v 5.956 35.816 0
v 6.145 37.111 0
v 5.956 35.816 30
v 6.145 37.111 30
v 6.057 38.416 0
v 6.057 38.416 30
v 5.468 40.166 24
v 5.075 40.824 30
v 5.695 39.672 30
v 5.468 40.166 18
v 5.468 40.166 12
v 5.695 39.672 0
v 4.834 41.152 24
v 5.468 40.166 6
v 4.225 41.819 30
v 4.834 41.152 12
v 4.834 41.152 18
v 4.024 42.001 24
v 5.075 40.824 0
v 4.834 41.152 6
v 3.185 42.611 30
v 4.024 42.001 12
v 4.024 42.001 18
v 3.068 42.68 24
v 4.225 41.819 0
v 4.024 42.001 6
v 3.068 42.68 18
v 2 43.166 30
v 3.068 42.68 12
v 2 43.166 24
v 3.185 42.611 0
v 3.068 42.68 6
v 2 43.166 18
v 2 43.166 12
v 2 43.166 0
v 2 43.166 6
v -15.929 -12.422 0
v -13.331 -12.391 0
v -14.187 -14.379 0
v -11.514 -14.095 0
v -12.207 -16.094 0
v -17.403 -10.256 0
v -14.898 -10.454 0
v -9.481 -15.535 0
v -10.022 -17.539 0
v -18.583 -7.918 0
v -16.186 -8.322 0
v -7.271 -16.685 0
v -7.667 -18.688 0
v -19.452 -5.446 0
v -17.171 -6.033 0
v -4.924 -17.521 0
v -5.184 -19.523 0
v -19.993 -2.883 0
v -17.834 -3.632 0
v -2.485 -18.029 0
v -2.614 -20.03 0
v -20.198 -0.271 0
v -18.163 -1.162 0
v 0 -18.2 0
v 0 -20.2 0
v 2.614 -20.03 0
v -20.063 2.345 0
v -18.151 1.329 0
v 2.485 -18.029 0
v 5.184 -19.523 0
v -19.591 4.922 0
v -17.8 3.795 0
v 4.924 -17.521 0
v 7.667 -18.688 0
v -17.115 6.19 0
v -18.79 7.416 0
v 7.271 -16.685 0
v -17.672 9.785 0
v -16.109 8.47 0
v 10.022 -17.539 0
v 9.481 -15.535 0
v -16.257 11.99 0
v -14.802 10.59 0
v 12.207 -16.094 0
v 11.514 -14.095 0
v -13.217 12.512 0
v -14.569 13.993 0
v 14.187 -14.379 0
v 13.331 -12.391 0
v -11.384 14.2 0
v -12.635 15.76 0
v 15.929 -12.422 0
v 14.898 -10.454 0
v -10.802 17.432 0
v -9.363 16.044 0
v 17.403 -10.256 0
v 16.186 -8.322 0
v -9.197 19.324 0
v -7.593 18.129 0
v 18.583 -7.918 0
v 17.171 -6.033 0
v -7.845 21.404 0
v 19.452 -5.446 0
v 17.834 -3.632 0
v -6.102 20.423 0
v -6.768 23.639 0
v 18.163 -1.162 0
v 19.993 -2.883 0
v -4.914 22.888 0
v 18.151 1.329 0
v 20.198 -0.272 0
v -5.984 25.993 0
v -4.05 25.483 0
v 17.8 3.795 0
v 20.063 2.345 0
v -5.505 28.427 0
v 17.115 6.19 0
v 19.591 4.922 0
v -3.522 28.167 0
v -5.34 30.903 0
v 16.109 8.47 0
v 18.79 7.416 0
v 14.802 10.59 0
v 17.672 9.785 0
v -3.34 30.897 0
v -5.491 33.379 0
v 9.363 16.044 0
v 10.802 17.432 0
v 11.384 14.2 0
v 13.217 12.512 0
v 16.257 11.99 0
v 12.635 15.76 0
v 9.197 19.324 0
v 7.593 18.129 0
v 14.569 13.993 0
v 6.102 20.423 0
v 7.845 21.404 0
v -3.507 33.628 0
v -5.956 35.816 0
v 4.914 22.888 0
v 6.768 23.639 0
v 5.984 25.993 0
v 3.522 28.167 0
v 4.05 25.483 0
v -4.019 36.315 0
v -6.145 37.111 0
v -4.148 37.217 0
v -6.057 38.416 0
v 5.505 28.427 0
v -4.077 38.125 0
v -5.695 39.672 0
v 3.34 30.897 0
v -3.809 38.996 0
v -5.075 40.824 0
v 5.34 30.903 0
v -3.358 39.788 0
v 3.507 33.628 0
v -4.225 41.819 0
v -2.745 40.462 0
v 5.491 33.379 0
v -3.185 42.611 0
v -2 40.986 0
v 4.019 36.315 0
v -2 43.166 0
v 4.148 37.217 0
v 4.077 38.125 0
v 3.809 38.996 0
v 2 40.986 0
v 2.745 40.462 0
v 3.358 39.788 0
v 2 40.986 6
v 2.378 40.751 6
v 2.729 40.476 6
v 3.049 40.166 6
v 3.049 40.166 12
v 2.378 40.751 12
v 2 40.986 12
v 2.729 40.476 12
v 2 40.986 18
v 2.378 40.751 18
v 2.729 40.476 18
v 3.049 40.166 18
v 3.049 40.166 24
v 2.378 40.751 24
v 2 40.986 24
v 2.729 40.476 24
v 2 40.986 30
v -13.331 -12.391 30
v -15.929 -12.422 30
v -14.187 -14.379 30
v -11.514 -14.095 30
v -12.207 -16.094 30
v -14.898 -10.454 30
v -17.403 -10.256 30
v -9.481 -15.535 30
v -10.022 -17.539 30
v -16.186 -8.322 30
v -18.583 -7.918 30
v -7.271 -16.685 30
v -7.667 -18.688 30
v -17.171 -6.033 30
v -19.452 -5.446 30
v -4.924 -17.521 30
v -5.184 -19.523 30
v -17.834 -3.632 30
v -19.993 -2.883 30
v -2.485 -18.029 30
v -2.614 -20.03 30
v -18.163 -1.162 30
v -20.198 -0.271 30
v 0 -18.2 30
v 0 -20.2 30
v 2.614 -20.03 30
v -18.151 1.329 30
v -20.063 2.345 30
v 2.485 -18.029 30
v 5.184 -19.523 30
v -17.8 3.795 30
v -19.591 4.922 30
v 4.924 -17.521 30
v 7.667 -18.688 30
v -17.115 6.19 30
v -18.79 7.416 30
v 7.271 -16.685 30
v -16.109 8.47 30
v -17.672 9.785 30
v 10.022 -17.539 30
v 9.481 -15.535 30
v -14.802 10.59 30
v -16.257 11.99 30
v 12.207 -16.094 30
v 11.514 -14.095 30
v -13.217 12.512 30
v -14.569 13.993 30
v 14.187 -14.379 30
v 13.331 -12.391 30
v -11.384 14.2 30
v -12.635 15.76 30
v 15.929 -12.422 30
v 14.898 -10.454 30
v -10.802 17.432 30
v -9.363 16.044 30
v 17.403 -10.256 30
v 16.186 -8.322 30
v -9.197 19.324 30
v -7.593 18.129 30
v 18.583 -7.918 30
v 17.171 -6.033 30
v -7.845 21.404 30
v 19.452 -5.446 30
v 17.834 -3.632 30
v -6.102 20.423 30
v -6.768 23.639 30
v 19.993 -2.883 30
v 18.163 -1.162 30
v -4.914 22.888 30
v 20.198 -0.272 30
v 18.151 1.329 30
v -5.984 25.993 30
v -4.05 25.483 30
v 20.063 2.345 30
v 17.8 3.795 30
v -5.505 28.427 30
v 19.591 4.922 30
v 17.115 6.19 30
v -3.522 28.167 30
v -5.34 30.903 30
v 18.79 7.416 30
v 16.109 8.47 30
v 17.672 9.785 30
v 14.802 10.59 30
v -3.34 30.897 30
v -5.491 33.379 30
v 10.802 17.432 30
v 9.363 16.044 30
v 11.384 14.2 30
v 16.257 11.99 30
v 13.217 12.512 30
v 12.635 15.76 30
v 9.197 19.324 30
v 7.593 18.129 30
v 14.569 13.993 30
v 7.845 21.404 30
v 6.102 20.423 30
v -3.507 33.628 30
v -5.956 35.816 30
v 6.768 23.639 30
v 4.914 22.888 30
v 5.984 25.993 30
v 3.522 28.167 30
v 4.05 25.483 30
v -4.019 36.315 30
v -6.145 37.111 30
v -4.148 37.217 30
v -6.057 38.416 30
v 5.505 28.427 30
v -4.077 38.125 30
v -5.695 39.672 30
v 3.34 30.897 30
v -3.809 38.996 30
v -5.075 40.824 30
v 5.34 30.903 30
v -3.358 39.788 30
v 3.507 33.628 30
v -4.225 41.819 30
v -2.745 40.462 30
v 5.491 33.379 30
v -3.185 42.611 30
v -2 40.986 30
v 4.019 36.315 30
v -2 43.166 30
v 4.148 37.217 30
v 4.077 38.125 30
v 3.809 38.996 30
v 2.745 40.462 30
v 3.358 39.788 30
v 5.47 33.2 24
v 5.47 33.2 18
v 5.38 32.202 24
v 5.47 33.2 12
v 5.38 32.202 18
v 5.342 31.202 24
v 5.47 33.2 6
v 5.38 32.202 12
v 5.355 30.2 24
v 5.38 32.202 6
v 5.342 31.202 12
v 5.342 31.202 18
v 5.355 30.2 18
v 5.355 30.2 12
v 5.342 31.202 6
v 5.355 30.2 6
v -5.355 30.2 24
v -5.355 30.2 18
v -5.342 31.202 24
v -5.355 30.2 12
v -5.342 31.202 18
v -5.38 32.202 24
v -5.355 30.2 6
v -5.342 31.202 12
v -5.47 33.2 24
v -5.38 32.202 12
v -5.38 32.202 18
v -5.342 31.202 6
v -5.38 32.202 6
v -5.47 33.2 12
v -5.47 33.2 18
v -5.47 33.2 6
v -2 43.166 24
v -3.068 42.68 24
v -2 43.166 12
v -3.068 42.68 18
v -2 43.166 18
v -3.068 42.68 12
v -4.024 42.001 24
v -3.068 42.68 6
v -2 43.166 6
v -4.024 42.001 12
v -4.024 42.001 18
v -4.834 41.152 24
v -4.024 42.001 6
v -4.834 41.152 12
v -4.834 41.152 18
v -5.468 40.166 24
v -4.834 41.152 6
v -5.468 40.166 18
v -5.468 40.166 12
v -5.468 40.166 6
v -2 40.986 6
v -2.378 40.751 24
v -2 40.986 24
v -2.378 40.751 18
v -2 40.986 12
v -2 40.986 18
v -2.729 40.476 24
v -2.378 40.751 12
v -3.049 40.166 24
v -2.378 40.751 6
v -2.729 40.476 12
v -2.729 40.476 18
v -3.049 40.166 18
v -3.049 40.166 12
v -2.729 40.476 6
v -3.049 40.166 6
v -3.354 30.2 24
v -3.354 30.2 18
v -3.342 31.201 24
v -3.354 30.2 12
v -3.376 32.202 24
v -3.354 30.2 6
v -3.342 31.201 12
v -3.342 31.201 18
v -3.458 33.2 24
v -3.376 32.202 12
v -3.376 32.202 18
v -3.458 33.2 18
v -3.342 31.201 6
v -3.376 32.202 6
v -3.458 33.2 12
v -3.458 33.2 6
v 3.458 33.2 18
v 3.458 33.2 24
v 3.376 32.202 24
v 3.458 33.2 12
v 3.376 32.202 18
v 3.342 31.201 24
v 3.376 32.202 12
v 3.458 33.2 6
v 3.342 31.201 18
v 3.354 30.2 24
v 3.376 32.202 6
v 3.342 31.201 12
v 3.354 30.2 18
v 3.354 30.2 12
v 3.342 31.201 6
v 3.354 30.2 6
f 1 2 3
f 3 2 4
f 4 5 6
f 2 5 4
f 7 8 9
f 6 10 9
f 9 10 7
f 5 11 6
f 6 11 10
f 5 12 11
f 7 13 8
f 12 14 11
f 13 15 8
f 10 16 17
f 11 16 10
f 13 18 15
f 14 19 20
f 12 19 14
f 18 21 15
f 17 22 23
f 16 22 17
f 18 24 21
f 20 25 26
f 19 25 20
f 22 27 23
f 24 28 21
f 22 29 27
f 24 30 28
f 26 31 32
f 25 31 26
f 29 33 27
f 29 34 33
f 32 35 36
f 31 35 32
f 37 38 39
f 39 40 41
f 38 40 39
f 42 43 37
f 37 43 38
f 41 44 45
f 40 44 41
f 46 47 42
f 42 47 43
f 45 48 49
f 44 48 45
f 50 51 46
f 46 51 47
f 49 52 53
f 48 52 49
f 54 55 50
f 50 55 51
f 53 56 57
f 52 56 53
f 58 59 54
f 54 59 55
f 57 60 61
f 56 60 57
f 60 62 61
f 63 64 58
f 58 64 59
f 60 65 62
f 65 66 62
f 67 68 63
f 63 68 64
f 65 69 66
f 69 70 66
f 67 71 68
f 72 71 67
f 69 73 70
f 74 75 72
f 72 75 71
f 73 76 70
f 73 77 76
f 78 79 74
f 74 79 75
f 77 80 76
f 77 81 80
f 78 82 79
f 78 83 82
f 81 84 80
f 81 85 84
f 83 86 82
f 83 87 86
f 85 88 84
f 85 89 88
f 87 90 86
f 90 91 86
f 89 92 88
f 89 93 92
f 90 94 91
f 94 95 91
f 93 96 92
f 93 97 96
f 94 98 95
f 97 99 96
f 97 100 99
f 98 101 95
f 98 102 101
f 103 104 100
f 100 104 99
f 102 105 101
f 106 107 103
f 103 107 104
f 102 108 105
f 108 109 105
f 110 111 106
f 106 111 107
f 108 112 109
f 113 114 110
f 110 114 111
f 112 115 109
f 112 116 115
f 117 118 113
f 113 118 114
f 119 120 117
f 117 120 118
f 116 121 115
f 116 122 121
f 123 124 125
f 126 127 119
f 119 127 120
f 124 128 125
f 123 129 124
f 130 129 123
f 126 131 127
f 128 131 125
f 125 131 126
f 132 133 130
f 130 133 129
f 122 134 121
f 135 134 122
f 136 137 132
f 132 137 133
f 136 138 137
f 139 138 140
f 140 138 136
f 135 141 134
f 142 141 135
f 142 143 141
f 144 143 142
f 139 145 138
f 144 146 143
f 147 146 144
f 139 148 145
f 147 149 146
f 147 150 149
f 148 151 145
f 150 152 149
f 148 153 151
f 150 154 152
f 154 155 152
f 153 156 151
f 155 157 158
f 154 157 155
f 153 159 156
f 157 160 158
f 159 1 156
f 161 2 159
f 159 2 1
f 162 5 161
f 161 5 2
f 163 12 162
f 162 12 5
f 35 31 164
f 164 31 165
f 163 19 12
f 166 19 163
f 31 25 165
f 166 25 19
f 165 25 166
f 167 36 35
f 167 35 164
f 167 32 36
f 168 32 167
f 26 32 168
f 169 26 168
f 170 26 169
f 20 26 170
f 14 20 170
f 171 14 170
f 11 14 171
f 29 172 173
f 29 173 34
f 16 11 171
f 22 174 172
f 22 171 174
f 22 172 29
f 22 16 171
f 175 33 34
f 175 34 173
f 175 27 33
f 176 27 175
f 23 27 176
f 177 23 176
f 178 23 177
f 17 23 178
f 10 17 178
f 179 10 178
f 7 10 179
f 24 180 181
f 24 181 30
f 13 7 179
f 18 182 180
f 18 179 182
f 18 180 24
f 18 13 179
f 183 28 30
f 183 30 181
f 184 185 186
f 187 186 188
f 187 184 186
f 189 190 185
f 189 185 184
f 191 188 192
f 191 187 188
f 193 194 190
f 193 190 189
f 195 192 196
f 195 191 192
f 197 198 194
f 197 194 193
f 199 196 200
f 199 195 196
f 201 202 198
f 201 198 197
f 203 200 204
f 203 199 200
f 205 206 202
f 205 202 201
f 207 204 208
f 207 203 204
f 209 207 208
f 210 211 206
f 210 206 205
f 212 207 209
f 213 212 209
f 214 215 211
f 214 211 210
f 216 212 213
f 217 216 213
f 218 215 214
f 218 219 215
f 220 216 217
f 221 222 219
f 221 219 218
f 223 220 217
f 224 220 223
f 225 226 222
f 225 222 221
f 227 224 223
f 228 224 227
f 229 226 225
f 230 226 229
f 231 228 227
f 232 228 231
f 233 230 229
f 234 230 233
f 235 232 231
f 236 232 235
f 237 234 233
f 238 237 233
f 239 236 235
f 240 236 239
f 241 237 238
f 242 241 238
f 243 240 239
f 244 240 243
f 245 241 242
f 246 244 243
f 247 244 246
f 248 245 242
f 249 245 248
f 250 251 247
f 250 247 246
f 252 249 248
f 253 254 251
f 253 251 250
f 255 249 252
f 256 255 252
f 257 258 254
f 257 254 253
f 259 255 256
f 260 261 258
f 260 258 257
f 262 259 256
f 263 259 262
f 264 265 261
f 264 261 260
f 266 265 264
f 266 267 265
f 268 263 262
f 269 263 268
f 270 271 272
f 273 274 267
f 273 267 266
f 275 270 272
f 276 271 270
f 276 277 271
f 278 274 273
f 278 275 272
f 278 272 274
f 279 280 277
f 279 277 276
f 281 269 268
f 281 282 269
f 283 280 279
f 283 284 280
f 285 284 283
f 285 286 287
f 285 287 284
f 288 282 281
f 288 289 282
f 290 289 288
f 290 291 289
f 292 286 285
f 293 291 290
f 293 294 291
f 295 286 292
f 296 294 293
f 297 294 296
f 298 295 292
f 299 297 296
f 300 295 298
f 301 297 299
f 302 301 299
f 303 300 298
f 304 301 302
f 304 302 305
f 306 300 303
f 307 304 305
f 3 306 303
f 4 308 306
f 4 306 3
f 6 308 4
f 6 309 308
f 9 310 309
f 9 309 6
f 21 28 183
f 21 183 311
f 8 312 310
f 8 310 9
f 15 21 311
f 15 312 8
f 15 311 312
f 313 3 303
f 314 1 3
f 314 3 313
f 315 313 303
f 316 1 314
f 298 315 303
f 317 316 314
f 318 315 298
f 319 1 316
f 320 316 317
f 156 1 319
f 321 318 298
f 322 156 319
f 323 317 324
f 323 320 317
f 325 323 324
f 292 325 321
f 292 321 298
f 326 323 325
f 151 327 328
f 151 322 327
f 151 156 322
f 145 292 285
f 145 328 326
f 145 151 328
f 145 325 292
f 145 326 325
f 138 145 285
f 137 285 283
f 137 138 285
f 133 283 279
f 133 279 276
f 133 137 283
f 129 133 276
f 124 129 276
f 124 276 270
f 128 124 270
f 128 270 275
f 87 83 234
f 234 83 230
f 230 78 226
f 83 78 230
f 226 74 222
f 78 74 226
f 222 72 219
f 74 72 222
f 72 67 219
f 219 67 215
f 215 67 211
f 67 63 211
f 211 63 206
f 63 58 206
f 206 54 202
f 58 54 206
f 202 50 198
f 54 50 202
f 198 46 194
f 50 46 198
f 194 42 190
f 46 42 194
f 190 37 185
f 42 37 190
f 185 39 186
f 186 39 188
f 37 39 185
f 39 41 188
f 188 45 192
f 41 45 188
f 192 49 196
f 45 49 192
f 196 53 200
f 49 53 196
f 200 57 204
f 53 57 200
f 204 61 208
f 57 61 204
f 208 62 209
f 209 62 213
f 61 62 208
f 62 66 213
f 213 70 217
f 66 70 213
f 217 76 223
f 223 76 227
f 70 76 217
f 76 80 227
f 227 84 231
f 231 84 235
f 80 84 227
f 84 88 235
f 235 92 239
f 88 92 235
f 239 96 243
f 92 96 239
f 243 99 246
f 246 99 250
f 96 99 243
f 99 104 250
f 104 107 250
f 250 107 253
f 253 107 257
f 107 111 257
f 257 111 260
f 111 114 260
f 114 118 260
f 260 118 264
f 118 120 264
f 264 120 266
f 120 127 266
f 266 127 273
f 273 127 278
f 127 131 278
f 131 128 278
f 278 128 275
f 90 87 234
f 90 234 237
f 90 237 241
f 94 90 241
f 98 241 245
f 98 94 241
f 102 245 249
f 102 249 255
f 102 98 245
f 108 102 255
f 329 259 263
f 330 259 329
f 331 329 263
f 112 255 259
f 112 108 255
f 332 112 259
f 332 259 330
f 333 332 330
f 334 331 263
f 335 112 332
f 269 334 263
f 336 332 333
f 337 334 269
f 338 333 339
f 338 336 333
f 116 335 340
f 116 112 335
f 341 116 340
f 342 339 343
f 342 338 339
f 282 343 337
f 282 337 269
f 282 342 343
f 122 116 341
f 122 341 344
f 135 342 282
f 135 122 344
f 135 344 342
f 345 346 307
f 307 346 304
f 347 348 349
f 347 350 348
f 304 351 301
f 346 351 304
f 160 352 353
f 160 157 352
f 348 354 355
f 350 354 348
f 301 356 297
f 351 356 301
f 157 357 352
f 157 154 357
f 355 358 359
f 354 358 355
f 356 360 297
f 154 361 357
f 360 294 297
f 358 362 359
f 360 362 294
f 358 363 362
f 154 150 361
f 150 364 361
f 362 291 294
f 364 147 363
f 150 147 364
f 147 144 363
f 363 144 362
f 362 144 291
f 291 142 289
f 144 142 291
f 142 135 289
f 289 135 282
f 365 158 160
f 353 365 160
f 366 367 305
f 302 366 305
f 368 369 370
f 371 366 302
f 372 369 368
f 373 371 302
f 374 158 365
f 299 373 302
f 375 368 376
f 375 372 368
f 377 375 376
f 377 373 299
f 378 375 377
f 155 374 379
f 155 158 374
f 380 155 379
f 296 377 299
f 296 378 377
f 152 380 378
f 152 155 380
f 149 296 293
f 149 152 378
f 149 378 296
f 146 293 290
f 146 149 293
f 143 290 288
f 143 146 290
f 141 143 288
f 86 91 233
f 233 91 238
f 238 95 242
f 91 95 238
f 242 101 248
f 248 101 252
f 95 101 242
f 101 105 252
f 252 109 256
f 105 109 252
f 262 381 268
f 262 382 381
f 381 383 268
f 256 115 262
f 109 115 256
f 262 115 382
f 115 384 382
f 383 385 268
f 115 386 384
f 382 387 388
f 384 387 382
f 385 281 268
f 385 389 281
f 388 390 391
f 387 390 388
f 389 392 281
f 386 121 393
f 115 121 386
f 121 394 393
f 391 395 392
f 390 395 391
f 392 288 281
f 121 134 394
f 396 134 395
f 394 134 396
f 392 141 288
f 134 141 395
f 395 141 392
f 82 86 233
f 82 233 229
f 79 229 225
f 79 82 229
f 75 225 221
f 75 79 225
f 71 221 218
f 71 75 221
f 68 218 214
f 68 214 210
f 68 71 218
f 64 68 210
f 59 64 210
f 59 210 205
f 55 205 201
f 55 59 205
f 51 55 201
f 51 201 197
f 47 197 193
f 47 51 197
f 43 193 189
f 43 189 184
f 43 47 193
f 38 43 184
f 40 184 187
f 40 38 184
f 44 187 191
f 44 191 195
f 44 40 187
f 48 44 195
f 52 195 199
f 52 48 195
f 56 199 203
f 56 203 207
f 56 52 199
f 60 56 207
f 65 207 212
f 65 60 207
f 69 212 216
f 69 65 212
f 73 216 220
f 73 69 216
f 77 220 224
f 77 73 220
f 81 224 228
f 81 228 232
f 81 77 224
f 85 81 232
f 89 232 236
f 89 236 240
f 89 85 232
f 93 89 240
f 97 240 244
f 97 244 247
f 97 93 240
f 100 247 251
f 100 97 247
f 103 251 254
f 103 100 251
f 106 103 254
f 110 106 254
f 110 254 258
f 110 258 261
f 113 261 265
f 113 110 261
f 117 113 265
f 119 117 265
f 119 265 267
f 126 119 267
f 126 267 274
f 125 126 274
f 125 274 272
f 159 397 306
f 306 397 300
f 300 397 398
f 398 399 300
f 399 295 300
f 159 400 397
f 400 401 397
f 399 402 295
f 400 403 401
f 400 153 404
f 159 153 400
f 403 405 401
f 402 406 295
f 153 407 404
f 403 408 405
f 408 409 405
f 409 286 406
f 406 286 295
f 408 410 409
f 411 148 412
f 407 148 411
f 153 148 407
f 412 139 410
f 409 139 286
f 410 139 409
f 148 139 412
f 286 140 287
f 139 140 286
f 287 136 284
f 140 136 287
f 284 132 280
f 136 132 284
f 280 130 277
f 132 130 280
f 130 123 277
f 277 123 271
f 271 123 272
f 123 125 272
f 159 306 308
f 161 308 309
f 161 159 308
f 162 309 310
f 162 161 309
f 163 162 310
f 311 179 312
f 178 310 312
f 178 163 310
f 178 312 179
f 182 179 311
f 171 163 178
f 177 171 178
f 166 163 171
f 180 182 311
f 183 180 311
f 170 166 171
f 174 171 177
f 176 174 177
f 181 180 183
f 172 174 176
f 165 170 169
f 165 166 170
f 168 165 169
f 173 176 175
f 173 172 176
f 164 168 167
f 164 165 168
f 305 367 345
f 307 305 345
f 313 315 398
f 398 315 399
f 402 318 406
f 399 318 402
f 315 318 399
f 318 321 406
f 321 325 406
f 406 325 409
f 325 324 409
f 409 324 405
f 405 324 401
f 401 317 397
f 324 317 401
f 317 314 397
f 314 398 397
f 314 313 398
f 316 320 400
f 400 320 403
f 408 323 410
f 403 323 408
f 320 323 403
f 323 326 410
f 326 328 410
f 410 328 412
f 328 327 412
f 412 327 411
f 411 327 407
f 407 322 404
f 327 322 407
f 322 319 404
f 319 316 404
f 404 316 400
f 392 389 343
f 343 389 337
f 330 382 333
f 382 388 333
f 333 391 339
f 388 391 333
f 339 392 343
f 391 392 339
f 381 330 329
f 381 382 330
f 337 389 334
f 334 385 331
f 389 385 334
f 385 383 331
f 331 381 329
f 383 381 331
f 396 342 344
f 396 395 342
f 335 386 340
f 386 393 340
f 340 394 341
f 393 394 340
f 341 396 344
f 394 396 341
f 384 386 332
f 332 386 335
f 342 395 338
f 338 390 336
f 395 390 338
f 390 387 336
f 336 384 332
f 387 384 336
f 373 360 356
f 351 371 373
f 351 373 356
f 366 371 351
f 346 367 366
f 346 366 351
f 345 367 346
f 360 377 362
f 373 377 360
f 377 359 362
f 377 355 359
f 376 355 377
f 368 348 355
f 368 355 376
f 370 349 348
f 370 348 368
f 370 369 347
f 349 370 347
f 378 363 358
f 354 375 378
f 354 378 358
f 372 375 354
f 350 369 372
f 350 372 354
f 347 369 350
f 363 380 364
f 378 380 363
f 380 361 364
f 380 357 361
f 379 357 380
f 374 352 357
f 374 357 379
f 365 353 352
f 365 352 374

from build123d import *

# Parameters (mm, degrees)
PAD_DEPTH            = 30
SKETCH001_W          = 6
SKETCH001_H          = 3
POCKET_DEPTH         = 13.2
POCKET_DEPTH_BACK    = 13.2
SKETCH002_W          = 4
SKETCH002_H          = 4
POCKET001_DEPTH      = 30.001
SKETCH003_W          = 6
SKETCH003_H          = 3
POCKET002_DEPTH      = 13.5
POCKET002_DEPTH_BACK = 13.5


with BuildPart() as part:
    # Sketch → Pad (new body)
    with BuildSketch(Plane.XY):
        with BuildLine():
            ThreePointArc((5.9557040861, 35.8163478757), (-5.5633e-06, 43.5), (-5.9557013114, 35.8163371006))
            ThreePointArc((-12.6352136355, 15.760437062), (-6.3383082394, 24.8035240378), (-5.9557013114, 35.8163371006))
            ThreePointArc((-12.6352136355, 15.760437062), (-6.1796e-06, -20.2), (12.6352232783, 15.7604293313))
            ThreePointArc((5.9557040861, 35.8163478757), (6.3383084342, 24.8035234531), (12.6352232783, 15.7604293313))
        make_face()
        with BuildLine():
            ThreePointArc((4.018887599, 36.3150881841), (-3e-10, 41.5), (-4.0188875988, 36.3150881835))
            ThreePointArc((-11.3841995766, 14.2), (-4.4407755735, 24.1715627241), (-4.0188875988, 36.3150881835))
            ThreePointArc((-11.3841995766, 14.2), (1.86e-08, -18.2), (11.3841995475, 14.2000000233))
            ThreePointArc((4.018887599, 36.3150881841), (4.4407755675, 24.1715627421), (11.3841995475, 14.2000000233))
        make_face(mode=Mode.SUBTRACT)
    extrude(amount=PAD_DEPTH)

    # Sketch001 (on DatumPlane) → Pocket (cut, two sides)
    with BuildSketch(Plane(origin=(-1.1243e-06, 28.9018483533, 15), x_dir=(0, 0, 1), z_dir=(1, 2.57e-08, 0))) as pocket_sk:
        with Locations((-6, -2.7981516467)):
            Rectangle(SKETCH001_W, SKETCH001_H)
        with Locations((6, -2.7981516467)):
            Rectangle(SKETCH001_W, SKETCH001_H)
    extrude(amount=-POCKET_DEPTH, mode=Mode.SUBTRACT)
    extrude(pocket_sk.sketch, amount=POCKET_DEPTH_BACK, mode=Mode.SUBTRACT)

    # Sketch002 (on Face5 of Pocket) → Pocket001 (cut, through all)
    with BuildSketch(Plane.XY.offset(30)):
        with Locations((0, 42.5)):
            Rectangle(SKETCH002_W, SKETCH002_H)
    extrude(amount=-POCKET001_DEPTH, mode=Mode.SUBTRACT)

    # Sketch003 (on DatumPlane) → Pocket002 (cut, two sides)
    with BuildSketch(Plane(origin=(-1.1243e-06, 28.9018483533, 15), x_dir=(0, 0, 1), z_dir=(1, 2.57e-08, 0))) as pocket002_sk:
        with Locations((-6, -12.7638630738)):
            Rectangle(SKETCH003_W, SKETCH003_H)
        with Locations((6, -12.7638630738)):
            Rectangle(SKETCH003_W, SKETCH003_H)
    extrude(amount=-POCKET002_DEPTH, mode=Mode.SUBTRACT)
    extrude(pocket002_sk.sketch, amount=POCKET002_DEPTH_BACK, mode=Mode.SUBTRACT)


solid = part.part
